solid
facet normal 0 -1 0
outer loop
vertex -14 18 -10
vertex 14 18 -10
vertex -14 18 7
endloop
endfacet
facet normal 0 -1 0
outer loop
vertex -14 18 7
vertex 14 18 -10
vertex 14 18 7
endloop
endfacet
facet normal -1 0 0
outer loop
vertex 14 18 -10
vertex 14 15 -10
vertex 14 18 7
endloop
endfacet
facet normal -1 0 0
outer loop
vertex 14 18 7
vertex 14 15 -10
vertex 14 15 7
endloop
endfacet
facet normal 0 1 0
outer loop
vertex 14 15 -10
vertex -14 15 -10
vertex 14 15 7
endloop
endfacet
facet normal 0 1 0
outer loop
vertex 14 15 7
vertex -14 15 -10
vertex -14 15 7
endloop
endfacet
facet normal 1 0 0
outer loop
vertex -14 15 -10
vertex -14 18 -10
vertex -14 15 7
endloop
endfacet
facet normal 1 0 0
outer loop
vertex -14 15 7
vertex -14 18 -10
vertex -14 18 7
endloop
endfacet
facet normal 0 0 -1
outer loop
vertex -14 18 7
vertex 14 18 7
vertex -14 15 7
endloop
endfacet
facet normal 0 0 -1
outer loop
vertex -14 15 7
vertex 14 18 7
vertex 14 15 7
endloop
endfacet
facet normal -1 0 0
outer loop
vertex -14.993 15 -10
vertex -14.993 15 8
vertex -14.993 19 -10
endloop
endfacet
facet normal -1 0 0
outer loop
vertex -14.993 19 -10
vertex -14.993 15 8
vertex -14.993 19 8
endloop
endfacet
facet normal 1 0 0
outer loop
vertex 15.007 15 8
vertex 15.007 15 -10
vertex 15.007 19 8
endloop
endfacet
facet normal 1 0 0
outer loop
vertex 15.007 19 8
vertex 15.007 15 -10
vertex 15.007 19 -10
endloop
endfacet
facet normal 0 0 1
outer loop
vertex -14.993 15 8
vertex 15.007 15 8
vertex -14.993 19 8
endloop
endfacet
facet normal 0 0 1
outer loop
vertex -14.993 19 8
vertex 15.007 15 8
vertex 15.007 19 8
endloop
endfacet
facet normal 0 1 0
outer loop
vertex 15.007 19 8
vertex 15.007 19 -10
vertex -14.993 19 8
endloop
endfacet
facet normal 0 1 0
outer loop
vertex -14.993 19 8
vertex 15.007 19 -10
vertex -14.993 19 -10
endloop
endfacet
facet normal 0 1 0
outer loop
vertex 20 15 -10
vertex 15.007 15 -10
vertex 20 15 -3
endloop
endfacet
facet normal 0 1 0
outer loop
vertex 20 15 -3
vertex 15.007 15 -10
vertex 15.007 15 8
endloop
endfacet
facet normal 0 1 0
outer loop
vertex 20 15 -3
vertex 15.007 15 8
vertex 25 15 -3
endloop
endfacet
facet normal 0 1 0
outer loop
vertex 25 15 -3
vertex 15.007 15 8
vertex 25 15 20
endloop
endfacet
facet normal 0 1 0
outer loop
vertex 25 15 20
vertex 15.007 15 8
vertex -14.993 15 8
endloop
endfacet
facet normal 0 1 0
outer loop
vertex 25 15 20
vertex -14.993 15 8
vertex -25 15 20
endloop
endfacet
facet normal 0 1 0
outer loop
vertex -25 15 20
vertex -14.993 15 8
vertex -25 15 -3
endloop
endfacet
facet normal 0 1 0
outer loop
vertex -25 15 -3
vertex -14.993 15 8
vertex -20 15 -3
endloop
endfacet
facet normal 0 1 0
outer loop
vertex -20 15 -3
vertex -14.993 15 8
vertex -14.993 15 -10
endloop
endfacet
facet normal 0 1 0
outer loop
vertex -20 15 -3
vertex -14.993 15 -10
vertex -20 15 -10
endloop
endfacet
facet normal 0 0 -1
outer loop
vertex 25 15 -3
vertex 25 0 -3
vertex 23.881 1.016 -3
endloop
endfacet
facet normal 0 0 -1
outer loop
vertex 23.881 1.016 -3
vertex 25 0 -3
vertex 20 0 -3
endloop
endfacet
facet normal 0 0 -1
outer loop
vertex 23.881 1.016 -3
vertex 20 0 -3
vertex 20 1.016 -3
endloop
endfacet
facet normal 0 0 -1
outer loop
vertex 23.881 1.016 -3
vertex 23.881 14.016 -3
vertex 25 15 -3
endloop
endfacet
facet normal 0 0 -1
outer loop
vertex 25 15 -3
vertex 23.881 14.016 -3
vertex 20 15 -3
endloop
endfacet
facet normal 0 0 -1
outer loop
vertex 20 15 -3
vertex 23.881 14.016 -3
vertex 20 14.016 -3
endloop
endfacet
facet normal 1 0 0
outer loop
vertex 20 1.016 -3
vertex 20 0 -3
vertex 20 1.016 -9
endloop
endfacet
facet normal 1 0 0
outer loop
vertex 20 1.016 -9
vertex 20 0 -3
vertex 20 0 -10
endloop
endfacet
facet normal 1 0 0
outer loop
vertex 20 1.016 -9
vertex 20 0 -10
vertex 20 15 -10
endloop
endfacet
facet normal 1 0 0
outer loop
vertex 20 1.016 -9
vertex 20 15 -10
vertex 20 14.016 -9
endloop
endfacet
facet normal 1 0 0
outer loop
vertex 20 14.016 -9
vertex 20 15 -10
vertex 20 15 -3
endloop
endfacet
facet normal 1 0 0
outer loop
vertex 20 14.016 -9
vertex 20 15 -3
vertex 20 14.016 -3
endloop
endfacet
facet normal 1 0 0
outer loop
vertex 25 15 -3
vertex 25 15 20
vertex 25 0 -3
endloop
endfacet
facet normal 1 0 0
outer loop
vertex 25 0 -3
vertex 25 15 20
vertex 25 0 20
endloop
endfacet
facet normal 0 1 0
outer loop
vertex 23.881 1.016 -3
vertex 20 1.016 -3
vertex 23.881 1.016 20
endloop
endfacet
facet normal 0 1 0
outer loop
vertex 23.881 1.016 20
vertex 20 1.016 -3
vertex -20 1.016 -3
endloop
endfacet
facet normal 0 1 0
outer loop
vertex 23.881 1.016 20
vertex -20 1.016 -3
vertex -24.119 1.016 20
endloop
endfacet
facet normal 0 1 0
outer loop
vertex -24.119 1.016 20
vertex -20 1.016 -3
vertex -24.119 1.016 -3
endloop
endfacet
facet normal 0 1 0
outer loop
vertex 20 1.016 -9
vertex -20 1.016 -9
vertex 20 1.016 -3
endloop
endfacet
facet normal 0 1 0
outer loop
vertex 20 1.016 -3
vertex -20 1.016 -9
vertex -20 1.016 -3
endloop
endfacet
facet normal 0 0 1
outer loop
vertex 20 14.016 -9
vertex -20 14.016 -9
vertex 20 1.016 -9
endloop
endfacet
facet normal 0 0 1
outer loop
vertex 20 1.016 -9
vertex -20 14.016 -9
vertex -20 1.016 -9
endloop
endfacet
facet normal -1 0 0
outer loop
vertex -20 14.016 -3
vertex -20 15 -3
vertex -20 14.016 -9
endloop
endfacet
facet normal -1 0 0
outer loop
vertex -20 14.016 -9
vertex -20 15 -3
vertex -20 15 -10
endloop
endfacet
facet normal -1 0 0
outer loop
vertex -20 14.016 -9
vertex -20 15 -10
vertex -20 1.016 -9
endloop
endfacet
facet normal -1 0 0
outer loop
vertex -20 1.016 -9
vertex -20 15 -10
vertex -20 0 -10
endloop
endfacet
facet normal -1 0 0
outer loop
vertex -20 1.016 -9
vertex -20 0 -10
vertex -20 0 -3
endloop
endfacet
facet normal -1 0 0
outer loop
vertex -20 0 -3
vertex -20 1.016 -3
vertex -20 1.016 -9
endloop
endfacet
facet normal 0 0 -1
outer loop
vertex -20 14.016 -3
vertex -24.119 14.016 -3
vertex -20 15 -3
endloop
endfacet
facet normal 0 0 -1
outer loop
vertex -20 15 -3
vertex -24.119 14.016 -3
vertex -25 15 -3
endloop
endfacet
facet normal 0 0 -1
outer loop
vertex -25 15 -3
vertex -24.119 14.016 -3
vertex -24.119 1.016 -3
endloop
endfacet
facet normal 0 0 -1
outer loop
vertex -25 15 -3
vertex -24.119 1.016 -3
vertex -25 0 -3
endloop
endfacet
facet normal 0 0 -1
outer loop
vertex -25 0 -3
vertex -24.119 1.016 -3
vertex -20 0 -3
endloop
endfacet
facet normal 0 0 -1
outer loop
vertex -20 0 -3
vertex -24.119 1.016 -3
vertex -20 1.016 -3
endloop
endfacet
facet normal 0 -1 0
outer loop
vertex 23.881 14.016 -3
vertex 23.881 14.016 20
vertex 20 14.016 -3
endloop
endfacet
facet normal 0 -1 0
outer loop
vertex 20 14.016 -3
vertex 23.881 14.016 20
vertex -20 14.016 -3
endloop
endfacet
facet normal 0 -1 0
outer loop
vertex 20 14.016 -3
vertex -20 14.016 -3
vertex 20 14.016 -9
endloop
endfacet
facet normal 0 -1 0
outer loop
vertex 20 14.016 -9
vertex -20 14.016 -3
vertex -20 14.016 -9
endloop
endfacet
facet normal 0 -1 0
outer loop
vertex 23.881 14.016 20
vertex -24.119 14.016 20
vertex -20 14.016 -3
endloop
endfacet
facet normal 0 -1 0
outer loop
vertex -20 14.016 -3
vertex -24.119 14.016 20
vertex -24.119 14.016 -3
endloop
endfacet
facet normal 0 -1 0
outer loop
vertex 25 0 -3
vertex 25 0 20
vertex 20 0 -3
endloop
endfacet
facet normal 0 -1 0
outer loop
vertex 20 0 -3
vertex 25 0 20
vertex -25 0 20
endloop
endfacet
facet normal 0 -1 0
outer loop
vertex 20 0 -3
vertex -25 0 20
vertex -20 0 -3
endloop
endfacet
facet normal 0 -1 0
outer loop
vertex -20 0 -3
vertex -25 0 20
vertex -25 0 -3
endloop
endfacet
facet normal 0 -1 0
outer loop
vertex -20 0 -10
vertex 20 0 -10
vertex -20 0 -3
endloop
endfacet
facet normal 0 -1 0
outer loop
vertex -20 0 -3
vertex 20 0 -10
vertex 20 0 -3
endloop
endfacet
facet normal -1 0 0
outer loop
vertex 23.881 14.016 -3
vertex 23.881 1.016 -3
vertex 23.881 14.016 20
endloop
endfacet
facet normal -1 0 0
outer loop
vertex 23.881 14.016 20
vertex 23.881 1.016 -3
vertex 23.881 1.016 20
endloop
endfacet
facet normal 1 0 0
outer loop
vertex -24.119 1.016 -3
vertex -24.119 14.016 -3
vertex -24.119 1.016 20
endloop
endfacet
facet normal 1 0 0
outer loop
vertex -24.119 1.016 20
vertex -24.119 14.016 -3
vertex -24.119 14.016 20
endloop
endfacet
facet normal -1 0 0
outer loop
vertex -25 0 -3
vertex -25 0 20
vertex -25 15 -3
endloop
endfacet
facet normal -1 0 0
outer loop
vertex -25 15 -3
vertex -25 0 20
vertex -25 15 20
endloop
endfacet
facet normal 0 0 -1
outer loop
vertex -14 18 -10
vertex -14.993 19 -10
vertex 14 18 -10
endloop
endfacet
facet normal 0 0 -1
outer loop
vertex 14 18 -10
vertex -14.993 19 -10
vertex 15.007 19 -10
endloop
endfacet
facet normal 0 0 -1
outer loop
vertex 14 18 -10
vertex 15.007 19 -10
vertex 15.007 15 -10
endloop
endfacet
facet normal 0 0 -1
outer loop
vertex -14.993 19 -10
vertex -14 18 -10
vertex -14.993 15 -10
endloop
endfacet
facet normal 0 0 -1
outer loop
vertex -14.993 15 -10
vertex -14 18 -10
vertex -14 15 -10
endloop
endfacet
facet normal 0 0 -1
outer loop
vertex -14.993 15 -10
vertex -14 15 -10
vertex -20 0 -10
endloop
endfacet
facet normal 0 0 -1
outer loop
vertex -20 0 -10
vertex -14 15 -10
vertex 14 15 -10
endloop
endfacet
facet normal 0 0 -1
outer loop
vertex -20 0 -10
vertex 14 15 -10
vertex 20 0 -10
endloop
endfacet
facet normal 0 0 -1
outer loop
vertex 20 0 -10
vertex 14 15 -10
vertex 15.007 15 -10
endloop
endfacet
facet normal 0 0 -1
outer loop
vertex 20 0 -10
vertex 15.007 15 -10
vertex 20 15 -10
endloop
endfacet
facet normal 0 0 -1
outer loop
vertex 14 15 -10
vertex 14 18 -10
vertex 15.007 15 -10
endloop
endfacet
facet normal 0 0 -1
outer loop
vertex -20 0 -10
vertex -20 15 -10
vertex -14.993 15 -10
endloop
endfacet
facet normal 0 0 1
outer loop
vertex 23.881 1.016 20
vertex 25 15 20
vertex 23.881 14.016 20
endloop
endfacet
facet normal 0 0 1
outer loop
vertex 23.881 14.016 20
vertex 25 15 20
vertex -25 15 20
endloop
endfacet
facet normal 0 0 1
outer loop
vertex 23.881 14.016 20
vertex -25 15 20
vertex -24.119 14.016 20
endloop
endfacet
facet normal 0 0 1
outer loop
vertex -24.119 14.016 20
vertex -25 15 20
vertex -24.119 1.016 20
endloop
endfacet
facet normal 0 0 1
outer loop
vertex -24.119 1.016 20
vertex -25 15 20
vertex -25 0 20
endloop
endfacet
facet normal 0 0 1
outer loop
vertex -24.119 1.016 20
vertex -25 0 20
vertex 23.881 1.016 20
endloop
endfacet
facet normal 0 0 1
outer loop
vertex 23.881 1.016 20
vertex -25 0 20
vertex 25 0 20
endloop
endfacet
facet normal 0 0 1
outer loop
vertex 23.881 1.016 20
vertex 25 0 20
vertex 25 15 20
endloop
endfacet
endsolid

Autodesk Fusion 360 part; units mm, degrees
sketch "スケッチ1" plane through (0, 0, 0) normal (0, 1, 0) x (1, 0, 0)
  line L0 (-25, 10) -> (25, 10)
  line L1 (25, 10) -> (25, -20)
  line L2 (25, -20) -> (-25, -20)
  line L3 (-25, -20) -> (-25, 10)
  dimension "d1" = 50
extrude "押し出し1" add sketch "スケッチ1" along normal blind 15
sketch "スケッチ2" plane through (0, 0, 20) normal (0, 0, 1) x (1, 0, 0)
  line L0 (-25, 0) -> (25, 0)
  line L1 (25, 0) -> (25, 15)
  line L2 (25, 15) -> (-25, 15)
  line L3 (-25, 15) -> (-25, 0)
  line L4 (-24.1188, 14.0157) -> (23.8812, 14.0157)
  line L5 (23.8812, 14.0157) -> (23.8812, 1.0157)
  line L6 (23.8812, 1.0157) -> (-24.1188, 1.0157)
  line L7 (-24.1188, 1.0157) -> (-24.1188, 14.0157)
  dimension "d4" = 48
  dimension "d5" = 13
extrude "押し出し2" cut sketch "スケッチ2" against normal blind 29 contours L4 L5 L6 L7
sketch "スケッチ3" plane through (0, 15, 0) normal (0, 1, 0) x (-1, 0, 0)
  line L0 (25, 20) -> (-25, 20)
  line L1 (-25, 20) -> (-25, -10)
  line L2 (-25, -10) -> (25, -10)
  line L3 (25, -10) -> (25, 20)
  line L4 (25, -10) -> (20, -10)
  line L5 (20, -10) -> (20, -3)
  line L6 (20, -3) -> (25, -3)
  line L7 (25, -3) -> (25, -10)
  dimension "d8" = 5
  dimension "d9" = 7
extrude "押し出し3" cut sketch "スケッチ3" against normal blind 25 contours L2 L3 L4 L5 L6 L7
sketch "スケッチ4" plane through (0, 15, 0) normal (0, 1, 0) x (-1, 0, 0)
  line L0 (20, -10) -> (20, -3)
  line L1 (20, -3) -> (25, -3)
  line L2 (25, -3) -> (25, 20)
  line L3 (25, 20) -> (-25, 20)
  line L4 (-25, 20) -> (-25, -10)
  line L5 (-25, -10) -> (20, -10)
  line L6 (-25, -10) -> (-20, -10)
  line L7 (-20, -10) -> (-20, -3)
  line L8 (-20, -3) -> (-25, -3)
  line L9 (-25, -3) -> (-25, -10)
  dimension "d12" = 7
  dimension "d13" = 5
extrude "押し出し4" cut sketch "スケッチ4" against normal blind 65 contours L4 L5 L6 L7 L8 L9
sketch "スケッチ5" plane through (0, 15, 0) normal (0, 1, 0) x (-1, 0, 0)
  line L0 (-25, -3) -> (-20, -3)
  line L1 (-20, -3) -> (-20, -10)
  line L2 (-20, -10) -> (20, -10)
  line L3 (20, -10) -> (20, -3)
  line L4 (20, -3) -> (25, -3)
  line L5 (25, -3) -> (25, 20)
  line L6 (25, 20) -> (-25, 20)
  line L7 (-25, 20) -> (-25, -3)
  line L8 (14.9932, -10) -> (-15.0068, -10)
  line L9 (-15.0068, -10) -> (-15.0068, 8)
  line L10 (-15.0068, 8) -> (14.9932, 8)
  line L11 (14.9932, 8) -> (14.9932, -10)
  dimension "d16" = 30
  dimension "d17" = 18
extrude "押し出し5" add sketch "スケッチ5" along normal blind 4 contours L2 L8 L9 L10 L11
sketch "スケッチ6" plane through (0, 0, -10) normal (0, 0, -1) x (-1, 0, 0)
  line L0 (-20, 15) -> (-20, 0)
  line L1 (-20, 0) -> (20, 0)
  line L2 (20, 0) -> (20, 15)
  line L3 (20, 15) -> (14.9932, 15)
  line L4 (14.9932, 15) -> (14.9932, 19)
  line L5 (14.9932, 19) -> (-15.0068, 19)
  line L6 (-15.0068, 19) -> (-15.0068, 15)
  line L7 (-15.0068, 15) -> (-20, 15)
  line L8 (14, 18) -> (-14, 18)
  line L9 (-14, 18) -> (-14, 15)
  line L10 (-14, 15) -> (14, 15)
  line L11 (14, 15) -> (14, 18)
  line L12 (-15.0068, 15) -> (14.9932, 15)
  line L13 (25, 15) -> (-25, 15)
extrude "押し出し6" cut sketch "スケッチ6" against normal blind 17 contours L8 L9 L10 L11 L12 L13
